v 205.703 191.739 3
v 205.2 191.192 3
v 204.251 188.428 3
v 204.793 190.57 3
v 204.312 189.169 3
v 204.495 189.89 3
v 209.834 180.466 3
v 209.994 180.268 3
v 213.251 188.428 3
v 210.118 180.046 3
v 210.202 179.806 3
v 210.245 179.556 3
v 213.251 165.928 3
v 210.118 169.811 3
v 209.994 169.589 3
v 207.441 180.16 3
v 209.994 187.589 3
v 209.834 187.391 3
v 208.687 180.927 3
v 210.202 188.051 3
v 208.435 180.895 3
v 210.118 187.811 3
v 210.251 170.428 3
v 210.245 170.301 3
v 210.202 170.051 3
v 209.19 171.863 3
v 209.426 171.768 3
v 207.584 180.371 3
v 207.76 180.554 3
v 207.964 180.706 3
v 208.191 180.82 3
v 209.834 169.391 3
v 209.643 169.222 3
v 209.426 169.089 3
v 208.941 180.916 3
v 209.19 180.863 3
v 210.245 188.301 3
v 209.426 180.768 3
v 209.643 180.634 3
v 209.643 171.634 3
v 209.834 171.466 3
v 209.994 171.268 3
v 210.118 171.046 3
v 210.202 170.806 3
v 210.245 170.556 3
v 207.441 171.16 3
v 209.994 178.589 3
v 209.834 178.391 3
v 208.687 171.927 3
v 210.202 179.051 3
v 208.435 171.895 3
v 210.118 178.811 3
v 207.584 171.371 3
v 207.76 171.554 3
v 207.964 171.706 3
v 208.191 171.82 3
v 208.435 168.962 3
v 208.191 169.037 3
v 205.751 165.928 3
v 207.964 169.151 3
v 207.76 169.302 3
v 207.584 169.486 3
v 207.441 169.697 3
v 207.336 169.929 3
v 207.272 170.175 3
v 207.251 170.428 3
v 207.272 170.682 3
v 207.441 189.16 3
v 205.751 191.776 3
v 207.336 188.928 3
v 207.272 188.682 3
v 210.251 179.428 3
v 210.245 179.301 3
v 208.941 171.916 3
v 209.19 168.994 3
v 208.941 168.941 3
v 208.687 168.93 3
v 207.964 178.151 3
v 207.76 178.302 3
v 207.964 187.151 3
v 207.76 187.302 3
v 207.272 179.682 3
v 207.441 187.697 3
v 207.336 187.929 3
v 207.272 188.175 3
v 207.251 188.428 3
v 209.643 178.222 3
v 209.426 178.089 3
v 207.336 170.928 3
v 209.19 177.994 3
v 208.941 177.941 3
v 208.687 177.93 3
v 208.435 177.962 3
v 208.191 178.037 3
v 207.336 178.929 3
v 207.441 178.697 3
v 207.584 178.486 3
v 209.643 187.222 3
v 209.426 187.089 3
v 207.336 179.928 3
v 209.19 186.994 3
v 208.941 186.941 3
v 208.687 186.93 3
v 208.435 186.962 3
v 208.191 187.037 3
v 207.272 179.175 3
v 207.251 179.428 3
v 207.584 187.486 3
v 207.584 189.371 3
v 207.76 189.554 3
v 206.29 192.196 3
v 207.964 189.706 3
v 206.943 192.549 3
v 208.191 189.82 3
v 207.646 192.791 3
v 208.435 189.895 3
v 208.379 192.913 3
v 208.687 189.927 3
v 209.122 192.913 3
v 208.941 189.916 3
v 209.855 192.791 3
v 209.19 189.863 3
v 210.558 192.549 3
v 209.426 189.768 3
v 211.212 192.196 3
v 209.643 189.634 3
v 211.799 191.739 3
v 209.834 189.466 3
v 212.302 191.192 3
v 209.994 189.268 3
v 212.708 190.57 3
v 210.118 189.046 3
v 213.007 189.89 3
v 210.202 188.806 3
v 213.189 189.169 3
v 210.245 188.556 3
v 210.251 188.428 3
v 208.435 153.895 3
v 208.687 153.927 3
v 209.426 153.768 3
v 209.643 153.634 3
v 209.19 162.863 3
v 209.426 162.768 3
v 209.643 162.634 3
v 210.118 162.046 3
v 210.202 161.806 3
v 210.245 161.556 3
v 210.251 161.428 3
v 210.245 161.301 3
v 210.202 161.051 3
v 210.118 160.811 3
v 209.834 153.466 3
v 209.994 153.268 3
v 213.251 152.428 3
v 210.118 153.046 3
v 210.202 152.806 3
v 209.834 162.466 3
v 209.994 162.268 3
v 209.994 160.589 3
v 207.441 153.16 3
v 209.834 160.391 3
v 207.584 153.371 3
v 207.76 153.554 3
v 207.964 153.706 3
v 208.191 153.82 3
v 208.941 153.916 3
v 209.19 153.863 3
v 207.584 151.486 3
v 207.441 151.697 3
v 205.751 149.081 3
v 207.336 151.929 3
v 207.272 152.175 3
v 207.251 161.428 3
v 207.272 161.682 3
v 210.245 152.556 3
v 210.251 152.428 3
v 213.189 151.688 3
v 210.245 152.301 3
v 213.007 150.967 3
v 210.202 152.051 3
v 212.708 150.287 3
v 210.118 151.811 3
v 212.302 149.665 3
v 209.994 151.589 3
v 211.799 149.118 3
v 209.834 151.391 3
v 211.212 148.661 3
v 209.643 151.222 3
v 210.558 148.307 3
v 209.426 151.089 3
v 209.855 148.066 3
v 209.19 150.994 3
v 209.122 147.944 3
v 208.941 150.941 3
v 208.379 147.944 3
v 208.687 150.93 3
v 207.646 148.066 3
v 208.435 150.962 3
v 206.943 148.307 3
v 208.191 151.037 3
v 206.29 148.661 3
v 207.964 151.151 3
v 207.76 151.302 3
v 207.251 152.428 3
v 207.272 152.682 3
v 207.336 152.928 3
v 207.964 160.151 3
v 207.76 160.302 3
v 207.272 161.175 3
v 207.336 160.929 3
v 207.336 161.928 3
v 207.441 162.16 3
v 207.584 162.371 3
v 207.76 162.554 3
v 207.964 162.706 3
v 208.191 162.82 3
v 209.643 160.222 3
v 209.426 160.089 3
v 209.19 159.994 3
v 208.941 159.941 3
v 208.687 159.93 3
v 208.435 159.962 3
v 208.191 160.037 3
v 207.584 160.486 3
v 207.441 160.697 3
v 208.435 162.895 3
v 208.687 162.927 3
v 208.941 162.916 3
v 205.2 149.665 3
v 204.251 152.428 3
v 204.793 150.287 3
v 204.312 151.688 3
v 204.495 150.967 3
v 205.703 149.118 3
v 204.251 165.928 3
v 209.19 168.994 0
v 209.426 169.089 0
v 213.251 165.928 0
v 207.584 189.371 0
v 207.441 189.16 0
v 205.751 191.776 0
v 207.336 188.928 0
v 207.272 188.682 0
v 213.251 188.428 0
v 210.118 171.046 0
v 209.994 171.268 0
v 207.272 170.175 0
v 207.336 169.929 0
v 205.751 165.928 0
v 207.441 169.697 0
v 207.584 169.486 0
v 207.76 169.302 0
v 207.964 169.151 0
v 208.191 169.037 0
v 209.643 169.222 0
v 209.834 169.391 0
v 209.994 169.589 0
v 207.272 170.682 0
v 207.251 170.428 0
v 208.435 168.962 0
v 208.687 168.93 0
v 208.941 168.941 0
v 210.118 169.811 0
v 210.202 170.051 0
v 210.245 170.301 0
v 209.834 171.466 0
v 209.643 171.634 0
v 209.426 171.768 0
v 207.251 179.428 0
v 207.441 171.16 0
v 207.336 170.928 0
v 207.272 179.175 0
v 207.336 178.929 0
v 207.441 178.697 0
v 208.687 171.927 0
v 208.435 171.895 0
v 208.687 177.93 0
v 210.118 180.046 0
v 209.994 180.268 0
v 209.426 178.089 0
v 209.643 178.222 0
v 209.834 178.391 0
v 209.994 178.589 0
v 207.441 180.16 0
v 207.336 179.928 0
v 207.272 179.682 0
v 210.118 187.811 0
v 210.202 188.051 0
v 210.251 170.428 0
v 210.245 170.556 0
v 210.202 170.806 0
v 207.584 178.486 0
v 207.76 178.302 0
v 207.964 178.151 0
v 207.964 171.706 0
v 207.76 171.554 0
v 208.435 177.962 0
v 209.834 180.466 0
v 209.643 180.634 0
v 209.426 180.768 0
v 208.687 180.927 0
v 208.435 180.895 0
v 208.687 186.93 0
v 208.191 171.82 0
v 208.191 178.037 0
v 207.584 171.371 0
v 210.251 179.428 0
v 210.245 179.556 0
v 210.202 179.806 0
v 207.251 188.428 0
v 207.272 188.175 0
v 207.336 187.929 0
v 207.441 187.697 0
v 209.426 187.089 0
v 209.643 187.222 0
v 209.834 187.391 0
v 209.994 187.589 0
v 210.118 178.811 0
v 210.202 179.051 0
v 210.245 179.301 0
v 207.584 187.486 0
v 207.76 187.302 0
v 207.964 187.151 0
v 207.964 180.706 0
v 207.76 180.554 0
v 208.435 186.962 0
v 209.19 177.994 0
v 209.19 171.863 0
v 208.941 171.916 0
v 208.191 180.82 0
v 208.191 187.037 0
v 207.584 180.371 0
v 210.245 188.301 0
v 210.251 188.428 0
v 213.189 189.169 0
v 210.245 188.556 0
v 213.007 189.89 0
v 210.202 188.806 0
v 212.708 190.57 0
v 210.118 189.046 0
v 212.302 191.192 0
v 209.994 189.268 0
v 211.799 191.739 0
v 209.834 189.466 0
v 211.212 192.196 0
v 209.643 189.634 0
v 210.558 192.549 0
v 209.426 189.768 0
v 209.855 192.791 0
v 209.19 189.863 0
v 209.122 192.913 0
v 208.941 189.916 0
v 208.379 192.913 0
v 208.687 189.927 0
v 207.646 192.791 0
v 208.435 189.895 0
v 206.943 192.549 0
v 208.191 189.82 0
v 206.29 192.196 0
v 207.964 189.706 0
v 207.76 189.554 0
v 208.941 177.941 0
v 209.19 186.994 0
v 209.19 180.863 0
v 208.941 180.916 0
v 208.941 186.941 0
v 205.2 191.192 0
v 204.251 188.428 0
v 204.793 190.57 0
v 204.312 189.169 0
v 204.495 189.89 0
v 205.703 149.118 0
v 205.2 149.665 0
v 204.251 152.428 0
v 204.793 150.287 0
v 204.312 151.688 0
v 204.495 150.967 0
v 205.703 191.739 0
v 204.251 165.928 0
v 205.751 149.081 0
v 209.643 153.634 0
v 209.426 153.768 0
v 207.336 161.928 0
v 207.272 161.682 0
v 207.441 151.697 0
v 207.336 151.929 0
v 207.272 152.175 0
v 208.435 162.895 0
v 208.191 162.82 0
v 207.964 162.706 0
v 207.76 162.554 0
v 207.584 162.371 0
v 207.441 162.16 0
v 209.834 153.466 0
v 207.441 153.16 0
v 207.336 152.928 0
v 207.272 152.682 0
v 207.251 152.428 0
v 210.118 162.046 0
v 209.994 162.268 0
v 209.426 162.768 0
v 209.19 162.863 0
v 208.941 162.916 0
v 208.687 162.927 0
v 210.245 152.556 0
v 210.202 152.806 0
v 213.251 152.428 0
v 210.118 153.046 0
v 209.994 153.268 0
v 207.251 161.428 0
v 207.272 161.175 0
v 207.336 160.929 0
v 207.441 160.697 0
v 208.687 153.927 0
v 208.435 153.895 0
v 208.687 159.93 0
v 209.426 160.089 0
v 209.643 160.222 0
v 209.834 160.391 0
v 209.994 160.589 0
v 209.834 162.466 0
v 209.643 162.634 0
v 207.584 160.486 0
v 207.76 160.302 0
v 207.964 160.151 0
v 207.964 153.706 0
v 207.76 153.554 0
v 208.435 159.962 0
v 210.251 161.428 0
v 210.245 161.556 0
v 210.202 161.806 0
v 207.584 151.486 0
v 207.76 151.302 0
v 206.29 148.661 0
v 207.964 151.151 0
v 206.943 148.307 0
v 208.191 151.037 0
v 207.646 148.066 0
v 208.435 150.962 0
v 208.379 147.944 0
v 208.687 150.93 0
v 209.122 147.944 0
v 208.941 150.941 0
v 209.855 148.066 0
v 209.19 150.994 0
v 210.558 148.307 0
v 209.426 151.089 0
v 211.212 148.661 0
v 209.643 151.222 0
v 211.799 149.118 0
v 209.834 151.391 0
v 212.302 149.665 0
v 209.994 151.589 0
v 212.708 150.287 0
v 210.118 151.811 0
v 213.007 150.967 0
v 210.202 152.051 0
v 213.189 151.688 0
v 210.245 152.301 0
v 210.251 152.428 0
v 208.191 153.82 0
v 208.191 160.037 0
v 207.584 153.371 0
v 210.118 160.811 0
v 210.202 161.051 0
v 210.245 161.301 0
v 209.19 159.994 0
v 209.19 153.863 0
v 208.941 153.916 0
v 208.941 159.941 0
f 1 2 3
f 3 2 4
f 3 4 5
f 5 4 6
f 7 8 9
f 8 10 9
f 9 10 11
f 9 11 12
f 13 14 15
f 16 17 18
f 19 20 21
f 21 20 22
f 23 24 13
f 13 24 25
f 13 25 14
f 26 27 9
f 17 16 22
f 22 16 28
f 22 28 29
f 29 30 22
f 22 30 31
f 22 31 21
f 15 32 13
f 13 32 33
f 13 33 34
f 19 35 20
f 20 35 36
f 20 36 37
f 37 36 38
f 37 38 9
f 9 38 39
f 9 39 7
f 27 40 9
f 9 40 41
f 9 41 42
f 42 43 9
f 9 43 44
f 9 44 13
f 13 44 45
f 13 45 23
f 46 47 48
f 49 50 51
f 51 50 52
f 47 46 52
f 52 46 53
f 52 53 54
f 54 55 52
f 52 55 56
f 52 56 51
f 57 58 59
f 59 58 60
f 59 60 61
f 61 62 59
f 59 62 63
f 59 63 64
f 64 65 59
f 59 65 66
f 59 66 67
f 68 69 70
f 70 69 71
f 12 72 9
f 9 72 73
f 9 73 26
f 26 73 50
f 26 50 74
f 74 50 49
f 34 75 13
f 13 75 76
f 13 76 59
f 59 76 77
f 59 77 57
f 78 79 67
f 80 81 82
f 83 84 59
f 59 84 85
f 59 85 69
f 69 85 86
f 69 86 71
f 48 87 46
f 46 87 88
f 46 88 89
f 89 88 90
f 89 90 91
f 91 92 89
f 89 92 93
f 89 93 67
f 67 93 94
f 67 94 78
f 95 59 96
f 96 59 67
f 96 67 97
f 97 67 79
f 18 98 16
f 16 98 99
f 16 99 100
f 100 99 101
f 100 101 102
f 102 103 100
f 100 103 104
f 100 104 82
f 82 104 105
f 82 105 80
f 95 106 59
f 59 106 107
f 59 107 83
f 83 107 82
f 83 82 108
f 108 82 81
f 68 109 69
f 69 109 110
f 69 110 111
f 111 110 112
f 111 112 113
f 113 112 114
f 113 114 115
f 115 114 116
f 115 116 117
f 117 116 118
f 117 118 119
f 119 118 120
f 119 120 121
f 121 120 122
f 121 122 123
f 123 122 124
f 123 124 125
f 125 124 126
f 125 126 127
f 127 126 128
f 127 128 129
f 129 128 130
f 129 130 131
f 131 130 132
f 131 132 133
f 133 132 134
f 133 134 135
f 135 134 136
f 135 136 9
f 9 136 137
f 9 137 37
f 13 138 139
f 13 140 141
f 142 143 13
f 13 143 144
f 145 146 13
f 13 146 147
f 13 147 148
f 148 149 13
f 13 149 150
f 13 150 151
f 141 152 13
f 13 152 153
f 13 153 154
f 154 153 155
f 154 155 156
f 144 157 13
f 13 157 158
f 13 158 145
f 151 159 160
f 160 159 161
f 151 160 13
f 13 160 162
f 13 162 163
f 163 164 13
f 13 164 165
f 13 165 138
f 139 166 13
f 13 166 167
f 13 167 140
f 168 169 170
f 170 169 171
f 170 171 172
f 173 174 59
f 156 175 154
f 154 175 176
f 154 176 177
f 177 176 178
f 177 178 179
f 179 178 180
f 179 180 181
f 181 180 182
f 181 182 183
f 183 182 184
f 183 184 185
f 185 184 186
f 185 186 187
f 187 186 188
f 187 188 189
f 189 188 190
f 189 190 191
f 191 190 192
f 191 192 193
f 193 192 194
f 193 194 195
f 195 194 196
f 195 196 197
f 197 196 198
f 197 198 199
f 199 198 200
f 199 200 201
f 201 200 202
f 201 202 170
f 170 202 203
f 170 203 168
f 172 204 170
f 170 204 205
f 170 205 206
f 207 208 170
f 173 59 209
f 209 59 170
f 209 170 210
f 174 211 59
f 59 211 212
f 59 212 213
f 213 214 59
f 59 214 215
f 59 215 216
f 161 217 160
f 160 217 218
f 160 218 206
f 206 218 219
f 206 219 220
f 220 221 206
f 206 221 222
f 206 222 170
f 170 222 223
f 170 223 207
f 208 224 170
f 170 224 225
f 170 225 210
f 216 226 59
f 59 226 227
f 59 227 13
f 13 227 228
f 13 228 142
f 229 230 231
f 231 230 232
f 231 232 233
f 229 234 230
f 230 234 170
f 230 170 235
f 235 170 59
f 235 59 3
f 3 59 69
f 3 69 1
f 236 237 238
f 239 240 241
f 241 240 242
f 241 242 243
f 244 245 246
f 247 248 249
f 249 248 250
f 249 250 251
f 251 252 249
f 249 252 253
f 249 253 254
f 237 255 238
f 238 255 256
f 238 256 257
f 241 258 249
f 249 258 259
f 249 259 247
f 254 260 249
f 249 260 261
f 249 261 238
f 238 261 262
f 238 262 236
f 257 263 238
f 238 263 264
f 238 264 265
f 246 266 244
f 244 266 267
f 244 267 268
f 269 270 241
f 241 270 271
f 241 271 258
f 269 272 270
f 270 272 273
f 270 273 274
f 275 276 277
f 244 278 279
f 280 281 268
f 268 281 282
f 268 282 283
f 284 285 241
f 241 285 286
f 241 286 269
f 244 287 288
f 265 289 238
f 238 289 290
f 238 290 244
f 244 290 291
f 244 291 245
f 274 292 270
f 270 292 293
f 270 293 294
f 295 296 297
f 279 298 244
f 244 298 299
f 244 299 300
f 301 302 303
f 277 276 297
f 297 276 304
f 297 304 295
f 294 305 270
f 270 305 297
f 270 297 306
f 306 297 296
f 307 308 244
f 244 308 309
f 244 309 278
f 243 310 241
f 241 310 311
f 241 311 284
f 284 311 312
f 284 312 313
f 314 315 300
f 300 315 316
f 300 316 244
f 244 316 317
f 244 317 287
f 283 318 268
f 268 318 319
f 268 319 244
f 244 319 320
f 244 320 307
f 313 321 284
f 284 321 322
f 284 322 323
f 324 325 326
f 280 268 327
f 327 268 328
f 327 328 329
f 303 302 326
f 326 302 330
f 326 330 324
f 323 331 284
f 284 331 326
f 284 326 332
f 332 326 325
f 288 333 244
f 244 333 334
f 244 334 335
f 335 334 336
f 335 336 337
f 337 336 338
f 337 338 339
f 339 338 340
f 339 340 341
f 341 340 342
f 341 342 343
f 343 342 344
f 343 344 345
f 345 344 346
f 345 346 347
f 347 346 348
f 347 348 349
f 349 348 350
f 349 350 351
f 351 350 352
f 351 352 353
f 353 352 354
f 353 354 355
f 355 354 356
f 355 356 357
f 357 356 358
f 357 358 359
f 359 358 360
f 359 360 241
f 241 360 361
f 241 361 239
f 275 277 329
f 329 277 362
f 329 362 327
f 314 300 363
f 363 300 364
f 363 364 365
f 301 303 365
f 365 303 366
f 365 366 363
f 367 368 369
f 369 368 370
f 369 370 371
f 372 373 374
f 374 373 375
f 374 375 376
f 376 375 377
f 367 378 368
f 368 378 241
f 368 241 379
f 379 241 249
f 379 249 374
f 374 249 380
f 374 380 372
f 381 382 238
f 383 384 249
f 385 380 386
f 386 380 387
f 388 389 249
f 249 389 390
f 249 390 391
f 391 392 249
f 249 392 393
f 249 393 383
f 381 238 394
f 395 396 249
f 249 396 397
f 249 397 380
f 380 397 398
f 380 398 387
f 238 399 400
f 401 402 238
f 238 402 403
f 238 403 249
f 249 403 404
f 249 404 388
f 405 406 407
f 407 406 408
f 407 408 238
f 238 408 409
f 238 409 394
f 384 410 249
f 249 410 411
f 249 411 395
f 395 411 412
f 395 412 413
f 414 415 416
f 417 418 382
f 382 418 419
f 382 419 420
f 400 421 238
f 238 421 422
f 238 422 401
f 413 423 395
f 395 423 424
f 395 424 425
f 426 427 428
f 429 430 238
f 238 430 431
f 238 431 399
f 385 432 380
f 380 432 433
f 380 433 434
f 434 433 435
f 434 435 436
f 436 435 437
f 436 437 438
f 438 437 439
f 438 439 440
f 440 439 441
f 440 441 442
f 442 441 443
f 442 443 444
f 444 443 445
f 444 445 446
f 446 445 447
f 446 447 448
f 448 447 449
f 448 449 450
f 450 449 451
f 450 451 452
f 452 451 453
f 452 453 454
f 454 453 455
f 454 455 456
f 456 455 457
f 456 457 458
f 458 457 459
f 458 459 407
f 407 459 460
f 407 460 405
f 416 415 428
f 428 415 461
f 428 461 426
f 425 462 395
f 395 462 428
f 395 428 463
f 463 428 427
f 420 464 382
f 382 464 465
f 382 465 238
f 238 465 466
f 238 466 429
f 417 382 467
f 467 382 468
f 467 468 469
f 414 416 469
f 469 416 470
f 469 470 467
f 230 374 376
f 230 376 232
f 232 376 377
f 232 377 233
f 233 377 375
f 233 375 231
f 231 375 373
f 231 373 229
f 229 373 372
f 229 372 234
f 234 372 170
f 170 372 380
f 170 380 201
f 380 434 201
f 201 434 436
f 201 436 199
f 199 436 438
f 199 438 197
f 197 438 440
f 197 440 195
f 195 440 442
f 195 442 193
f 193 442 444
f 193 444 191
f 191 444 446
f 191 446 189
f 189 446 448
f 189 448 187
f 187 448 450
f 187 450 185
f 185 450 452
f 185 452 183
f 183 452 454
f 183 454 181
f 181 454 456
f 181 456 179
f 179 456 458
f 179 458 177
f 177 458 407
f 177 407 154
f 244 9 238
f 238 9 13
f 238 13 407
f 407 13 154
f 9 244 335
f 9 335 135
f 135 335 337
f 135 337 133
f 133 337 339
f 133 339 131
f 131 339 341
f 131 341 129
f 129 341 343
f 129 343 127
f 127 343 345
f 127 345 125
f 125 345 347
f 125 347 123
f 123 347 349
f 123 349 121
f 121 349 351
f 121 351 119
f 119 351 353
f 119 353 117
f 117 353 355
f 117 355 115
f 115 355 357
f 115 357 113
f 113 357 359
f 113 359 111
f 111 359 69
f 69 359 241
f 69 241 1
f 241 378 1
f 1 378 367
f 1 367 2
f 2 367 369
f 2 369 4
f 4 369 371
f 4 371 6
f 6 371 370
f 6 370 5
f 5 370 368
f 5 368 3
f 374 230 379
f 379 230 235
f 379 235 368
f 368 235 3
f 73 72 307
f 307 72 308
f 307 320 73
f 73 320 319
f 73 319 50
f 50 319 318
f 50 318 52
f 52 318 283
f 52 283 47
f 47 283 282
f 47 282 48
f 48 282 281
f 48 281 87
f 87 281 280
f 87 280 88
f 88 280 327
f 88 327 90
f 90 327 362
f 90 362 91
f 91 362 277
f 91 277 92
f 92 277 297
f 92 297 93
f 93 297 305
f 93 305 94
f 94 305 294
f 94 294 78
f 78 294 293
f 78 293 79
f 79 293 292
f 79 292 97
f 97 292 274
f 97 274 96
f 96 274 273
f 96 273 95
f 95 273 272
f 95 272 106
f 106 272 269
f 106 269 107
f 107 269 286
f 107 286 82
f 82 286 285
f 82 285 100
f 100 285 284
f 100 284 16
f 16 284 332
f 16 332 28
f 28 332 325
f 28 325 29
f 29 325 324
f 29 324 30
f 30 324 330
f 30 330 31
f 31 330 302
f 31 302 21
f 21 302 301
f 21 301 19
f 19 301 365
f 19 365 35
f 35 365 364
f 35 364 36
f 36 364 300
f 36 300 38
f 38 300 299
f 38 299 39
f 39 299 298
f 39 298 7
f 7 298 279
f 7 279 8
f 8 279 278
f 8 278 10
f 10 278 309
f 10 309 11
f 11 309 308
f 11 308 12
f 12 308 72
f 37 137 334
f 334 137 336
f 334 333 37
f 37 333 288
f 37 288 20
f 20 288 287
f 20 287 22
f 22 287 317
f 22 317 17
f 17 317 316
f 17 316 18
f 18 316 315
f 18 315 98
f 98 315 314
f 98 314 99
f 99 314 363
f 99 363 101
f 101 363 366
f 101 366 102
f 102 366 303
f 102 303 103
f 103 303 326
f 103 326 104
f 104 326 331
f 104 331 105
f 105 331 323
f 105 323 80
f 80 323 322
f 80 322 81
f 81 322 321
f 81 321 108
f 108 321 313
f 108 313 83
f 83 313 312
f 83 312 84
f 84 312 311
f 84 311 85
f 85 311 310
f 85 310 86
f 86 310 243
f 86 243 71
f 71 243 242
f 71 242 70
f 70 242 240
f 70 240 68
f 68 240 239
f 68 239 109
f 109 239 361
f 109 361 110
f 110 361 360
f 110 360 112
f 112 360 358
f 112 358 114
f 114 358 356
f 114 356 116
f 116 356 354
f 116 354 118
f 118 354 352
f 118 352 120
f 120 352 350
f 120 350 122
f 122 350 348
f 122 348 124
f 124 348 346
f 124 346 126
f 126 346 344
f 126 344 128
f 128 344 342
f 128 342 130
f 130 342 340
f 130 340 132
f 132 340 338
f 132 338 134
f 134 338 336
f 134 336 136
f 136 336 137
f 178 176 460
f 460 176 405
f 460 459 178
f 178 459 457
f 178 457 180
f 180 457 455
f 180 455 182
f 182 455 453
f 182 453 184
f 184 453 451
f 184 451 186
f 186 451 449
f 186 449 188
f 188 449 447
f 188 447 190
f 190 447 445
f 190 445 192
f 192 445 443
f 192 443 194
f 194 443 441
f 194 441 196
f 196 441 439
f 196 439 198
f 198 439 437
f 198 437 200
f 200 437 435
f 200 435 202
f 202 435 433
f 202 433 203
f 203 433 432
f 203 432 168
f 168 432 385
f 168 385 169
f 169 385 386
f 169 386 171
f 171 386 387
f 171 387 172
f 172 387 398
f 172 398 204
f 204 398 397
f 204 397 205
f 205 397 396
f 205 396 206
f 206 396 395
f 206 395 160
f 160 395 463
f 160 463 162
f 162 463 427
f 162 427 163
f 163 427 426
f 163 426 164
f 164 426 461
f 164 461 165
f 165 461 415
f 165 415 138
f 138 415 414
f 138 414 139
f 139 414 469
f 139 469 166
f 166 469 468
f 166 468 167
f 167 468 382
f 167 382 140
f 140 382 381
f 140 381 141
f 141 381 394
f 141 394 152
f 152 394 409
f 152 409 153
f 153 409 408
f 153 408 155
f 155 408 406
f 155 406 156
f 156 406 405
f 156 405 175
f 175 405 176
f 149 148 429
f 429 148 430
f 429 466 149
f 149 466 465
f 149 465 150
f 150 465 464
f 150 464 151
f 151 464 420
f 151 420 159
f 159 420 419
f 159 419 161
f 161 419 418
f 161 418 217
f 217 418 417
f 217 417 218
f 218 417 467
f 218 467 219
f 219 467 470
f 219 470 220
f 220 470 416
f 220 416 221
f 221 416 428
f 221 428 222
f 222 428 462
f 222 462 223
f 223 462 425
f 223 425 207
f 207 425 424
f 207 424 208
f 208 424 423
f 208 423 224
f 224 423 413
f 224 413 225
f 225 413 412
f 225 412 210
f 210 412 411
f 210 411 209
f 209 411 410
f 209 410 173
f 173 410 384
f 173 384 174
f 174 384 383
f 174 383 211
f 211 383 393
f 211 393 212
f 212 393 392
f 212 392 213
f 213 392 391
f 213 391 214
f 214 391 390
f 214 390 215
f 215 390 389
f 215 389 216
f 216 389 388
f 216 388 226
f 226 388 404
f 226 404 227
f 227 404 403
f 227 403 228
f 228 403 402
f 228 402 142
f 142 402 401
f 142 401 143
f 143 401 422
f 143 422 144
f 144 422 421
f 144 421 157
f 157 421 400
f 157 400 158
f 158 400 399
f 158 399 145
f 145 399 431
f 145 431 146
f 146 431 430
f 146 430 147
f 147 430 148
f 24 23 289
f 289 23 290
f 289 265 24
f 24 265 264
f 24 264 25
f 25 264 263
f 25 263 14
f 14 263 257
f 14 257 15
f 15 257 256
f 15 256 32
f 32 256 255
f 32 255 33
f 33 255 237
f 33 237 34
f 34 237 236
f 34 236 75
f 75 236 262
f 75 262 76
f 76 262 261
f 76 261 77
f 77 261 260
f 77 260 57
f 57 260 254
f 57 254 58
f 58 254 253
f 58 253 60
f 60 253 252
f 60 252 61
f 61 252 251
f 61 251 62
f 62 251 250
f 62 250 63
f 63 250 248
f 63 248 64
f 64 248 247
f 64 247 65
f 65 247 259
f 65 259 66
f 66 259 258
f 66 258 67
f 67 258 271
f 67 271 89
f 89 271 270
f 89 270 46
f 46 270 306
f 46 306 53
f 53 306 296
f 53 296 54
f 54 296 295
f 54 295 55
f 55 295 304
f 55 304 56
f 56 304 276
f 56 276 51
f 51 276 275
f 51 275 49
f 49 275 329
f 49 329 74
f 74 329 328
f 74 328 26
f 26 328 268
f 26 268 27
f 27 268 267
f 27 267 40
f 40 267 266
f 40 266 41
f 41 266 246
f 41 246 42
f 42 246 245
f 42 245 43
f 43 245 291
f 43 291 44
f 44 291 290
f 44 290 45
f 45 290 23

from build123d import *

# Parameters (mm, degrees)
MODEL_R                 = 1.5
SALIENTE_EXTRUIR1_DEPTH = 3


with BuildPart() as part:
    # Model → Saliente-Extruir1 (new body)
    with BuildSketch(Plane.XY):
        with BuildLine():
            Line((213.25077615, 152.428489513), (213.25077615, 188.428489513))
            ThreePointArc((213.25077615, 188.428489513), (208.75077615, 192.928489513), (204.25077615, 188.428489513))
            Line((204.25077615, 188.428489513), (204.25077615, 152.428489513))
            ThreePointArc((204.25077615, 152.428489513), (208.75077615, 147.928489513), (213.25077615, 152.428489513))
        make_face()
        with Locations((208.75077615, 179.428489513)):
            Circle(MODEL_R, mode=Mode.SUBTRACT)
        with Locations((208.75077615, 188.428489513)):
            Circle(MODEL_R, mode=Mode.SUBTRACT)
        with Locations((208.75077615, 152.428489513)):
            Circle(MODEL_R, mode=Mode.SUBTRACT)
        with Locations((208.75077615, 161.428489513)):
            Circle(MODEL_R, mode=Mode.SUBTRACT)
        with Locations((208.75077615, 170.428489513)):
            Circle(MODEL_R, mode=Mode.SUBTRACT)
    extrude(amount=SALIENTE_EXTRUIR1_DEPTH)


solid = part.part
